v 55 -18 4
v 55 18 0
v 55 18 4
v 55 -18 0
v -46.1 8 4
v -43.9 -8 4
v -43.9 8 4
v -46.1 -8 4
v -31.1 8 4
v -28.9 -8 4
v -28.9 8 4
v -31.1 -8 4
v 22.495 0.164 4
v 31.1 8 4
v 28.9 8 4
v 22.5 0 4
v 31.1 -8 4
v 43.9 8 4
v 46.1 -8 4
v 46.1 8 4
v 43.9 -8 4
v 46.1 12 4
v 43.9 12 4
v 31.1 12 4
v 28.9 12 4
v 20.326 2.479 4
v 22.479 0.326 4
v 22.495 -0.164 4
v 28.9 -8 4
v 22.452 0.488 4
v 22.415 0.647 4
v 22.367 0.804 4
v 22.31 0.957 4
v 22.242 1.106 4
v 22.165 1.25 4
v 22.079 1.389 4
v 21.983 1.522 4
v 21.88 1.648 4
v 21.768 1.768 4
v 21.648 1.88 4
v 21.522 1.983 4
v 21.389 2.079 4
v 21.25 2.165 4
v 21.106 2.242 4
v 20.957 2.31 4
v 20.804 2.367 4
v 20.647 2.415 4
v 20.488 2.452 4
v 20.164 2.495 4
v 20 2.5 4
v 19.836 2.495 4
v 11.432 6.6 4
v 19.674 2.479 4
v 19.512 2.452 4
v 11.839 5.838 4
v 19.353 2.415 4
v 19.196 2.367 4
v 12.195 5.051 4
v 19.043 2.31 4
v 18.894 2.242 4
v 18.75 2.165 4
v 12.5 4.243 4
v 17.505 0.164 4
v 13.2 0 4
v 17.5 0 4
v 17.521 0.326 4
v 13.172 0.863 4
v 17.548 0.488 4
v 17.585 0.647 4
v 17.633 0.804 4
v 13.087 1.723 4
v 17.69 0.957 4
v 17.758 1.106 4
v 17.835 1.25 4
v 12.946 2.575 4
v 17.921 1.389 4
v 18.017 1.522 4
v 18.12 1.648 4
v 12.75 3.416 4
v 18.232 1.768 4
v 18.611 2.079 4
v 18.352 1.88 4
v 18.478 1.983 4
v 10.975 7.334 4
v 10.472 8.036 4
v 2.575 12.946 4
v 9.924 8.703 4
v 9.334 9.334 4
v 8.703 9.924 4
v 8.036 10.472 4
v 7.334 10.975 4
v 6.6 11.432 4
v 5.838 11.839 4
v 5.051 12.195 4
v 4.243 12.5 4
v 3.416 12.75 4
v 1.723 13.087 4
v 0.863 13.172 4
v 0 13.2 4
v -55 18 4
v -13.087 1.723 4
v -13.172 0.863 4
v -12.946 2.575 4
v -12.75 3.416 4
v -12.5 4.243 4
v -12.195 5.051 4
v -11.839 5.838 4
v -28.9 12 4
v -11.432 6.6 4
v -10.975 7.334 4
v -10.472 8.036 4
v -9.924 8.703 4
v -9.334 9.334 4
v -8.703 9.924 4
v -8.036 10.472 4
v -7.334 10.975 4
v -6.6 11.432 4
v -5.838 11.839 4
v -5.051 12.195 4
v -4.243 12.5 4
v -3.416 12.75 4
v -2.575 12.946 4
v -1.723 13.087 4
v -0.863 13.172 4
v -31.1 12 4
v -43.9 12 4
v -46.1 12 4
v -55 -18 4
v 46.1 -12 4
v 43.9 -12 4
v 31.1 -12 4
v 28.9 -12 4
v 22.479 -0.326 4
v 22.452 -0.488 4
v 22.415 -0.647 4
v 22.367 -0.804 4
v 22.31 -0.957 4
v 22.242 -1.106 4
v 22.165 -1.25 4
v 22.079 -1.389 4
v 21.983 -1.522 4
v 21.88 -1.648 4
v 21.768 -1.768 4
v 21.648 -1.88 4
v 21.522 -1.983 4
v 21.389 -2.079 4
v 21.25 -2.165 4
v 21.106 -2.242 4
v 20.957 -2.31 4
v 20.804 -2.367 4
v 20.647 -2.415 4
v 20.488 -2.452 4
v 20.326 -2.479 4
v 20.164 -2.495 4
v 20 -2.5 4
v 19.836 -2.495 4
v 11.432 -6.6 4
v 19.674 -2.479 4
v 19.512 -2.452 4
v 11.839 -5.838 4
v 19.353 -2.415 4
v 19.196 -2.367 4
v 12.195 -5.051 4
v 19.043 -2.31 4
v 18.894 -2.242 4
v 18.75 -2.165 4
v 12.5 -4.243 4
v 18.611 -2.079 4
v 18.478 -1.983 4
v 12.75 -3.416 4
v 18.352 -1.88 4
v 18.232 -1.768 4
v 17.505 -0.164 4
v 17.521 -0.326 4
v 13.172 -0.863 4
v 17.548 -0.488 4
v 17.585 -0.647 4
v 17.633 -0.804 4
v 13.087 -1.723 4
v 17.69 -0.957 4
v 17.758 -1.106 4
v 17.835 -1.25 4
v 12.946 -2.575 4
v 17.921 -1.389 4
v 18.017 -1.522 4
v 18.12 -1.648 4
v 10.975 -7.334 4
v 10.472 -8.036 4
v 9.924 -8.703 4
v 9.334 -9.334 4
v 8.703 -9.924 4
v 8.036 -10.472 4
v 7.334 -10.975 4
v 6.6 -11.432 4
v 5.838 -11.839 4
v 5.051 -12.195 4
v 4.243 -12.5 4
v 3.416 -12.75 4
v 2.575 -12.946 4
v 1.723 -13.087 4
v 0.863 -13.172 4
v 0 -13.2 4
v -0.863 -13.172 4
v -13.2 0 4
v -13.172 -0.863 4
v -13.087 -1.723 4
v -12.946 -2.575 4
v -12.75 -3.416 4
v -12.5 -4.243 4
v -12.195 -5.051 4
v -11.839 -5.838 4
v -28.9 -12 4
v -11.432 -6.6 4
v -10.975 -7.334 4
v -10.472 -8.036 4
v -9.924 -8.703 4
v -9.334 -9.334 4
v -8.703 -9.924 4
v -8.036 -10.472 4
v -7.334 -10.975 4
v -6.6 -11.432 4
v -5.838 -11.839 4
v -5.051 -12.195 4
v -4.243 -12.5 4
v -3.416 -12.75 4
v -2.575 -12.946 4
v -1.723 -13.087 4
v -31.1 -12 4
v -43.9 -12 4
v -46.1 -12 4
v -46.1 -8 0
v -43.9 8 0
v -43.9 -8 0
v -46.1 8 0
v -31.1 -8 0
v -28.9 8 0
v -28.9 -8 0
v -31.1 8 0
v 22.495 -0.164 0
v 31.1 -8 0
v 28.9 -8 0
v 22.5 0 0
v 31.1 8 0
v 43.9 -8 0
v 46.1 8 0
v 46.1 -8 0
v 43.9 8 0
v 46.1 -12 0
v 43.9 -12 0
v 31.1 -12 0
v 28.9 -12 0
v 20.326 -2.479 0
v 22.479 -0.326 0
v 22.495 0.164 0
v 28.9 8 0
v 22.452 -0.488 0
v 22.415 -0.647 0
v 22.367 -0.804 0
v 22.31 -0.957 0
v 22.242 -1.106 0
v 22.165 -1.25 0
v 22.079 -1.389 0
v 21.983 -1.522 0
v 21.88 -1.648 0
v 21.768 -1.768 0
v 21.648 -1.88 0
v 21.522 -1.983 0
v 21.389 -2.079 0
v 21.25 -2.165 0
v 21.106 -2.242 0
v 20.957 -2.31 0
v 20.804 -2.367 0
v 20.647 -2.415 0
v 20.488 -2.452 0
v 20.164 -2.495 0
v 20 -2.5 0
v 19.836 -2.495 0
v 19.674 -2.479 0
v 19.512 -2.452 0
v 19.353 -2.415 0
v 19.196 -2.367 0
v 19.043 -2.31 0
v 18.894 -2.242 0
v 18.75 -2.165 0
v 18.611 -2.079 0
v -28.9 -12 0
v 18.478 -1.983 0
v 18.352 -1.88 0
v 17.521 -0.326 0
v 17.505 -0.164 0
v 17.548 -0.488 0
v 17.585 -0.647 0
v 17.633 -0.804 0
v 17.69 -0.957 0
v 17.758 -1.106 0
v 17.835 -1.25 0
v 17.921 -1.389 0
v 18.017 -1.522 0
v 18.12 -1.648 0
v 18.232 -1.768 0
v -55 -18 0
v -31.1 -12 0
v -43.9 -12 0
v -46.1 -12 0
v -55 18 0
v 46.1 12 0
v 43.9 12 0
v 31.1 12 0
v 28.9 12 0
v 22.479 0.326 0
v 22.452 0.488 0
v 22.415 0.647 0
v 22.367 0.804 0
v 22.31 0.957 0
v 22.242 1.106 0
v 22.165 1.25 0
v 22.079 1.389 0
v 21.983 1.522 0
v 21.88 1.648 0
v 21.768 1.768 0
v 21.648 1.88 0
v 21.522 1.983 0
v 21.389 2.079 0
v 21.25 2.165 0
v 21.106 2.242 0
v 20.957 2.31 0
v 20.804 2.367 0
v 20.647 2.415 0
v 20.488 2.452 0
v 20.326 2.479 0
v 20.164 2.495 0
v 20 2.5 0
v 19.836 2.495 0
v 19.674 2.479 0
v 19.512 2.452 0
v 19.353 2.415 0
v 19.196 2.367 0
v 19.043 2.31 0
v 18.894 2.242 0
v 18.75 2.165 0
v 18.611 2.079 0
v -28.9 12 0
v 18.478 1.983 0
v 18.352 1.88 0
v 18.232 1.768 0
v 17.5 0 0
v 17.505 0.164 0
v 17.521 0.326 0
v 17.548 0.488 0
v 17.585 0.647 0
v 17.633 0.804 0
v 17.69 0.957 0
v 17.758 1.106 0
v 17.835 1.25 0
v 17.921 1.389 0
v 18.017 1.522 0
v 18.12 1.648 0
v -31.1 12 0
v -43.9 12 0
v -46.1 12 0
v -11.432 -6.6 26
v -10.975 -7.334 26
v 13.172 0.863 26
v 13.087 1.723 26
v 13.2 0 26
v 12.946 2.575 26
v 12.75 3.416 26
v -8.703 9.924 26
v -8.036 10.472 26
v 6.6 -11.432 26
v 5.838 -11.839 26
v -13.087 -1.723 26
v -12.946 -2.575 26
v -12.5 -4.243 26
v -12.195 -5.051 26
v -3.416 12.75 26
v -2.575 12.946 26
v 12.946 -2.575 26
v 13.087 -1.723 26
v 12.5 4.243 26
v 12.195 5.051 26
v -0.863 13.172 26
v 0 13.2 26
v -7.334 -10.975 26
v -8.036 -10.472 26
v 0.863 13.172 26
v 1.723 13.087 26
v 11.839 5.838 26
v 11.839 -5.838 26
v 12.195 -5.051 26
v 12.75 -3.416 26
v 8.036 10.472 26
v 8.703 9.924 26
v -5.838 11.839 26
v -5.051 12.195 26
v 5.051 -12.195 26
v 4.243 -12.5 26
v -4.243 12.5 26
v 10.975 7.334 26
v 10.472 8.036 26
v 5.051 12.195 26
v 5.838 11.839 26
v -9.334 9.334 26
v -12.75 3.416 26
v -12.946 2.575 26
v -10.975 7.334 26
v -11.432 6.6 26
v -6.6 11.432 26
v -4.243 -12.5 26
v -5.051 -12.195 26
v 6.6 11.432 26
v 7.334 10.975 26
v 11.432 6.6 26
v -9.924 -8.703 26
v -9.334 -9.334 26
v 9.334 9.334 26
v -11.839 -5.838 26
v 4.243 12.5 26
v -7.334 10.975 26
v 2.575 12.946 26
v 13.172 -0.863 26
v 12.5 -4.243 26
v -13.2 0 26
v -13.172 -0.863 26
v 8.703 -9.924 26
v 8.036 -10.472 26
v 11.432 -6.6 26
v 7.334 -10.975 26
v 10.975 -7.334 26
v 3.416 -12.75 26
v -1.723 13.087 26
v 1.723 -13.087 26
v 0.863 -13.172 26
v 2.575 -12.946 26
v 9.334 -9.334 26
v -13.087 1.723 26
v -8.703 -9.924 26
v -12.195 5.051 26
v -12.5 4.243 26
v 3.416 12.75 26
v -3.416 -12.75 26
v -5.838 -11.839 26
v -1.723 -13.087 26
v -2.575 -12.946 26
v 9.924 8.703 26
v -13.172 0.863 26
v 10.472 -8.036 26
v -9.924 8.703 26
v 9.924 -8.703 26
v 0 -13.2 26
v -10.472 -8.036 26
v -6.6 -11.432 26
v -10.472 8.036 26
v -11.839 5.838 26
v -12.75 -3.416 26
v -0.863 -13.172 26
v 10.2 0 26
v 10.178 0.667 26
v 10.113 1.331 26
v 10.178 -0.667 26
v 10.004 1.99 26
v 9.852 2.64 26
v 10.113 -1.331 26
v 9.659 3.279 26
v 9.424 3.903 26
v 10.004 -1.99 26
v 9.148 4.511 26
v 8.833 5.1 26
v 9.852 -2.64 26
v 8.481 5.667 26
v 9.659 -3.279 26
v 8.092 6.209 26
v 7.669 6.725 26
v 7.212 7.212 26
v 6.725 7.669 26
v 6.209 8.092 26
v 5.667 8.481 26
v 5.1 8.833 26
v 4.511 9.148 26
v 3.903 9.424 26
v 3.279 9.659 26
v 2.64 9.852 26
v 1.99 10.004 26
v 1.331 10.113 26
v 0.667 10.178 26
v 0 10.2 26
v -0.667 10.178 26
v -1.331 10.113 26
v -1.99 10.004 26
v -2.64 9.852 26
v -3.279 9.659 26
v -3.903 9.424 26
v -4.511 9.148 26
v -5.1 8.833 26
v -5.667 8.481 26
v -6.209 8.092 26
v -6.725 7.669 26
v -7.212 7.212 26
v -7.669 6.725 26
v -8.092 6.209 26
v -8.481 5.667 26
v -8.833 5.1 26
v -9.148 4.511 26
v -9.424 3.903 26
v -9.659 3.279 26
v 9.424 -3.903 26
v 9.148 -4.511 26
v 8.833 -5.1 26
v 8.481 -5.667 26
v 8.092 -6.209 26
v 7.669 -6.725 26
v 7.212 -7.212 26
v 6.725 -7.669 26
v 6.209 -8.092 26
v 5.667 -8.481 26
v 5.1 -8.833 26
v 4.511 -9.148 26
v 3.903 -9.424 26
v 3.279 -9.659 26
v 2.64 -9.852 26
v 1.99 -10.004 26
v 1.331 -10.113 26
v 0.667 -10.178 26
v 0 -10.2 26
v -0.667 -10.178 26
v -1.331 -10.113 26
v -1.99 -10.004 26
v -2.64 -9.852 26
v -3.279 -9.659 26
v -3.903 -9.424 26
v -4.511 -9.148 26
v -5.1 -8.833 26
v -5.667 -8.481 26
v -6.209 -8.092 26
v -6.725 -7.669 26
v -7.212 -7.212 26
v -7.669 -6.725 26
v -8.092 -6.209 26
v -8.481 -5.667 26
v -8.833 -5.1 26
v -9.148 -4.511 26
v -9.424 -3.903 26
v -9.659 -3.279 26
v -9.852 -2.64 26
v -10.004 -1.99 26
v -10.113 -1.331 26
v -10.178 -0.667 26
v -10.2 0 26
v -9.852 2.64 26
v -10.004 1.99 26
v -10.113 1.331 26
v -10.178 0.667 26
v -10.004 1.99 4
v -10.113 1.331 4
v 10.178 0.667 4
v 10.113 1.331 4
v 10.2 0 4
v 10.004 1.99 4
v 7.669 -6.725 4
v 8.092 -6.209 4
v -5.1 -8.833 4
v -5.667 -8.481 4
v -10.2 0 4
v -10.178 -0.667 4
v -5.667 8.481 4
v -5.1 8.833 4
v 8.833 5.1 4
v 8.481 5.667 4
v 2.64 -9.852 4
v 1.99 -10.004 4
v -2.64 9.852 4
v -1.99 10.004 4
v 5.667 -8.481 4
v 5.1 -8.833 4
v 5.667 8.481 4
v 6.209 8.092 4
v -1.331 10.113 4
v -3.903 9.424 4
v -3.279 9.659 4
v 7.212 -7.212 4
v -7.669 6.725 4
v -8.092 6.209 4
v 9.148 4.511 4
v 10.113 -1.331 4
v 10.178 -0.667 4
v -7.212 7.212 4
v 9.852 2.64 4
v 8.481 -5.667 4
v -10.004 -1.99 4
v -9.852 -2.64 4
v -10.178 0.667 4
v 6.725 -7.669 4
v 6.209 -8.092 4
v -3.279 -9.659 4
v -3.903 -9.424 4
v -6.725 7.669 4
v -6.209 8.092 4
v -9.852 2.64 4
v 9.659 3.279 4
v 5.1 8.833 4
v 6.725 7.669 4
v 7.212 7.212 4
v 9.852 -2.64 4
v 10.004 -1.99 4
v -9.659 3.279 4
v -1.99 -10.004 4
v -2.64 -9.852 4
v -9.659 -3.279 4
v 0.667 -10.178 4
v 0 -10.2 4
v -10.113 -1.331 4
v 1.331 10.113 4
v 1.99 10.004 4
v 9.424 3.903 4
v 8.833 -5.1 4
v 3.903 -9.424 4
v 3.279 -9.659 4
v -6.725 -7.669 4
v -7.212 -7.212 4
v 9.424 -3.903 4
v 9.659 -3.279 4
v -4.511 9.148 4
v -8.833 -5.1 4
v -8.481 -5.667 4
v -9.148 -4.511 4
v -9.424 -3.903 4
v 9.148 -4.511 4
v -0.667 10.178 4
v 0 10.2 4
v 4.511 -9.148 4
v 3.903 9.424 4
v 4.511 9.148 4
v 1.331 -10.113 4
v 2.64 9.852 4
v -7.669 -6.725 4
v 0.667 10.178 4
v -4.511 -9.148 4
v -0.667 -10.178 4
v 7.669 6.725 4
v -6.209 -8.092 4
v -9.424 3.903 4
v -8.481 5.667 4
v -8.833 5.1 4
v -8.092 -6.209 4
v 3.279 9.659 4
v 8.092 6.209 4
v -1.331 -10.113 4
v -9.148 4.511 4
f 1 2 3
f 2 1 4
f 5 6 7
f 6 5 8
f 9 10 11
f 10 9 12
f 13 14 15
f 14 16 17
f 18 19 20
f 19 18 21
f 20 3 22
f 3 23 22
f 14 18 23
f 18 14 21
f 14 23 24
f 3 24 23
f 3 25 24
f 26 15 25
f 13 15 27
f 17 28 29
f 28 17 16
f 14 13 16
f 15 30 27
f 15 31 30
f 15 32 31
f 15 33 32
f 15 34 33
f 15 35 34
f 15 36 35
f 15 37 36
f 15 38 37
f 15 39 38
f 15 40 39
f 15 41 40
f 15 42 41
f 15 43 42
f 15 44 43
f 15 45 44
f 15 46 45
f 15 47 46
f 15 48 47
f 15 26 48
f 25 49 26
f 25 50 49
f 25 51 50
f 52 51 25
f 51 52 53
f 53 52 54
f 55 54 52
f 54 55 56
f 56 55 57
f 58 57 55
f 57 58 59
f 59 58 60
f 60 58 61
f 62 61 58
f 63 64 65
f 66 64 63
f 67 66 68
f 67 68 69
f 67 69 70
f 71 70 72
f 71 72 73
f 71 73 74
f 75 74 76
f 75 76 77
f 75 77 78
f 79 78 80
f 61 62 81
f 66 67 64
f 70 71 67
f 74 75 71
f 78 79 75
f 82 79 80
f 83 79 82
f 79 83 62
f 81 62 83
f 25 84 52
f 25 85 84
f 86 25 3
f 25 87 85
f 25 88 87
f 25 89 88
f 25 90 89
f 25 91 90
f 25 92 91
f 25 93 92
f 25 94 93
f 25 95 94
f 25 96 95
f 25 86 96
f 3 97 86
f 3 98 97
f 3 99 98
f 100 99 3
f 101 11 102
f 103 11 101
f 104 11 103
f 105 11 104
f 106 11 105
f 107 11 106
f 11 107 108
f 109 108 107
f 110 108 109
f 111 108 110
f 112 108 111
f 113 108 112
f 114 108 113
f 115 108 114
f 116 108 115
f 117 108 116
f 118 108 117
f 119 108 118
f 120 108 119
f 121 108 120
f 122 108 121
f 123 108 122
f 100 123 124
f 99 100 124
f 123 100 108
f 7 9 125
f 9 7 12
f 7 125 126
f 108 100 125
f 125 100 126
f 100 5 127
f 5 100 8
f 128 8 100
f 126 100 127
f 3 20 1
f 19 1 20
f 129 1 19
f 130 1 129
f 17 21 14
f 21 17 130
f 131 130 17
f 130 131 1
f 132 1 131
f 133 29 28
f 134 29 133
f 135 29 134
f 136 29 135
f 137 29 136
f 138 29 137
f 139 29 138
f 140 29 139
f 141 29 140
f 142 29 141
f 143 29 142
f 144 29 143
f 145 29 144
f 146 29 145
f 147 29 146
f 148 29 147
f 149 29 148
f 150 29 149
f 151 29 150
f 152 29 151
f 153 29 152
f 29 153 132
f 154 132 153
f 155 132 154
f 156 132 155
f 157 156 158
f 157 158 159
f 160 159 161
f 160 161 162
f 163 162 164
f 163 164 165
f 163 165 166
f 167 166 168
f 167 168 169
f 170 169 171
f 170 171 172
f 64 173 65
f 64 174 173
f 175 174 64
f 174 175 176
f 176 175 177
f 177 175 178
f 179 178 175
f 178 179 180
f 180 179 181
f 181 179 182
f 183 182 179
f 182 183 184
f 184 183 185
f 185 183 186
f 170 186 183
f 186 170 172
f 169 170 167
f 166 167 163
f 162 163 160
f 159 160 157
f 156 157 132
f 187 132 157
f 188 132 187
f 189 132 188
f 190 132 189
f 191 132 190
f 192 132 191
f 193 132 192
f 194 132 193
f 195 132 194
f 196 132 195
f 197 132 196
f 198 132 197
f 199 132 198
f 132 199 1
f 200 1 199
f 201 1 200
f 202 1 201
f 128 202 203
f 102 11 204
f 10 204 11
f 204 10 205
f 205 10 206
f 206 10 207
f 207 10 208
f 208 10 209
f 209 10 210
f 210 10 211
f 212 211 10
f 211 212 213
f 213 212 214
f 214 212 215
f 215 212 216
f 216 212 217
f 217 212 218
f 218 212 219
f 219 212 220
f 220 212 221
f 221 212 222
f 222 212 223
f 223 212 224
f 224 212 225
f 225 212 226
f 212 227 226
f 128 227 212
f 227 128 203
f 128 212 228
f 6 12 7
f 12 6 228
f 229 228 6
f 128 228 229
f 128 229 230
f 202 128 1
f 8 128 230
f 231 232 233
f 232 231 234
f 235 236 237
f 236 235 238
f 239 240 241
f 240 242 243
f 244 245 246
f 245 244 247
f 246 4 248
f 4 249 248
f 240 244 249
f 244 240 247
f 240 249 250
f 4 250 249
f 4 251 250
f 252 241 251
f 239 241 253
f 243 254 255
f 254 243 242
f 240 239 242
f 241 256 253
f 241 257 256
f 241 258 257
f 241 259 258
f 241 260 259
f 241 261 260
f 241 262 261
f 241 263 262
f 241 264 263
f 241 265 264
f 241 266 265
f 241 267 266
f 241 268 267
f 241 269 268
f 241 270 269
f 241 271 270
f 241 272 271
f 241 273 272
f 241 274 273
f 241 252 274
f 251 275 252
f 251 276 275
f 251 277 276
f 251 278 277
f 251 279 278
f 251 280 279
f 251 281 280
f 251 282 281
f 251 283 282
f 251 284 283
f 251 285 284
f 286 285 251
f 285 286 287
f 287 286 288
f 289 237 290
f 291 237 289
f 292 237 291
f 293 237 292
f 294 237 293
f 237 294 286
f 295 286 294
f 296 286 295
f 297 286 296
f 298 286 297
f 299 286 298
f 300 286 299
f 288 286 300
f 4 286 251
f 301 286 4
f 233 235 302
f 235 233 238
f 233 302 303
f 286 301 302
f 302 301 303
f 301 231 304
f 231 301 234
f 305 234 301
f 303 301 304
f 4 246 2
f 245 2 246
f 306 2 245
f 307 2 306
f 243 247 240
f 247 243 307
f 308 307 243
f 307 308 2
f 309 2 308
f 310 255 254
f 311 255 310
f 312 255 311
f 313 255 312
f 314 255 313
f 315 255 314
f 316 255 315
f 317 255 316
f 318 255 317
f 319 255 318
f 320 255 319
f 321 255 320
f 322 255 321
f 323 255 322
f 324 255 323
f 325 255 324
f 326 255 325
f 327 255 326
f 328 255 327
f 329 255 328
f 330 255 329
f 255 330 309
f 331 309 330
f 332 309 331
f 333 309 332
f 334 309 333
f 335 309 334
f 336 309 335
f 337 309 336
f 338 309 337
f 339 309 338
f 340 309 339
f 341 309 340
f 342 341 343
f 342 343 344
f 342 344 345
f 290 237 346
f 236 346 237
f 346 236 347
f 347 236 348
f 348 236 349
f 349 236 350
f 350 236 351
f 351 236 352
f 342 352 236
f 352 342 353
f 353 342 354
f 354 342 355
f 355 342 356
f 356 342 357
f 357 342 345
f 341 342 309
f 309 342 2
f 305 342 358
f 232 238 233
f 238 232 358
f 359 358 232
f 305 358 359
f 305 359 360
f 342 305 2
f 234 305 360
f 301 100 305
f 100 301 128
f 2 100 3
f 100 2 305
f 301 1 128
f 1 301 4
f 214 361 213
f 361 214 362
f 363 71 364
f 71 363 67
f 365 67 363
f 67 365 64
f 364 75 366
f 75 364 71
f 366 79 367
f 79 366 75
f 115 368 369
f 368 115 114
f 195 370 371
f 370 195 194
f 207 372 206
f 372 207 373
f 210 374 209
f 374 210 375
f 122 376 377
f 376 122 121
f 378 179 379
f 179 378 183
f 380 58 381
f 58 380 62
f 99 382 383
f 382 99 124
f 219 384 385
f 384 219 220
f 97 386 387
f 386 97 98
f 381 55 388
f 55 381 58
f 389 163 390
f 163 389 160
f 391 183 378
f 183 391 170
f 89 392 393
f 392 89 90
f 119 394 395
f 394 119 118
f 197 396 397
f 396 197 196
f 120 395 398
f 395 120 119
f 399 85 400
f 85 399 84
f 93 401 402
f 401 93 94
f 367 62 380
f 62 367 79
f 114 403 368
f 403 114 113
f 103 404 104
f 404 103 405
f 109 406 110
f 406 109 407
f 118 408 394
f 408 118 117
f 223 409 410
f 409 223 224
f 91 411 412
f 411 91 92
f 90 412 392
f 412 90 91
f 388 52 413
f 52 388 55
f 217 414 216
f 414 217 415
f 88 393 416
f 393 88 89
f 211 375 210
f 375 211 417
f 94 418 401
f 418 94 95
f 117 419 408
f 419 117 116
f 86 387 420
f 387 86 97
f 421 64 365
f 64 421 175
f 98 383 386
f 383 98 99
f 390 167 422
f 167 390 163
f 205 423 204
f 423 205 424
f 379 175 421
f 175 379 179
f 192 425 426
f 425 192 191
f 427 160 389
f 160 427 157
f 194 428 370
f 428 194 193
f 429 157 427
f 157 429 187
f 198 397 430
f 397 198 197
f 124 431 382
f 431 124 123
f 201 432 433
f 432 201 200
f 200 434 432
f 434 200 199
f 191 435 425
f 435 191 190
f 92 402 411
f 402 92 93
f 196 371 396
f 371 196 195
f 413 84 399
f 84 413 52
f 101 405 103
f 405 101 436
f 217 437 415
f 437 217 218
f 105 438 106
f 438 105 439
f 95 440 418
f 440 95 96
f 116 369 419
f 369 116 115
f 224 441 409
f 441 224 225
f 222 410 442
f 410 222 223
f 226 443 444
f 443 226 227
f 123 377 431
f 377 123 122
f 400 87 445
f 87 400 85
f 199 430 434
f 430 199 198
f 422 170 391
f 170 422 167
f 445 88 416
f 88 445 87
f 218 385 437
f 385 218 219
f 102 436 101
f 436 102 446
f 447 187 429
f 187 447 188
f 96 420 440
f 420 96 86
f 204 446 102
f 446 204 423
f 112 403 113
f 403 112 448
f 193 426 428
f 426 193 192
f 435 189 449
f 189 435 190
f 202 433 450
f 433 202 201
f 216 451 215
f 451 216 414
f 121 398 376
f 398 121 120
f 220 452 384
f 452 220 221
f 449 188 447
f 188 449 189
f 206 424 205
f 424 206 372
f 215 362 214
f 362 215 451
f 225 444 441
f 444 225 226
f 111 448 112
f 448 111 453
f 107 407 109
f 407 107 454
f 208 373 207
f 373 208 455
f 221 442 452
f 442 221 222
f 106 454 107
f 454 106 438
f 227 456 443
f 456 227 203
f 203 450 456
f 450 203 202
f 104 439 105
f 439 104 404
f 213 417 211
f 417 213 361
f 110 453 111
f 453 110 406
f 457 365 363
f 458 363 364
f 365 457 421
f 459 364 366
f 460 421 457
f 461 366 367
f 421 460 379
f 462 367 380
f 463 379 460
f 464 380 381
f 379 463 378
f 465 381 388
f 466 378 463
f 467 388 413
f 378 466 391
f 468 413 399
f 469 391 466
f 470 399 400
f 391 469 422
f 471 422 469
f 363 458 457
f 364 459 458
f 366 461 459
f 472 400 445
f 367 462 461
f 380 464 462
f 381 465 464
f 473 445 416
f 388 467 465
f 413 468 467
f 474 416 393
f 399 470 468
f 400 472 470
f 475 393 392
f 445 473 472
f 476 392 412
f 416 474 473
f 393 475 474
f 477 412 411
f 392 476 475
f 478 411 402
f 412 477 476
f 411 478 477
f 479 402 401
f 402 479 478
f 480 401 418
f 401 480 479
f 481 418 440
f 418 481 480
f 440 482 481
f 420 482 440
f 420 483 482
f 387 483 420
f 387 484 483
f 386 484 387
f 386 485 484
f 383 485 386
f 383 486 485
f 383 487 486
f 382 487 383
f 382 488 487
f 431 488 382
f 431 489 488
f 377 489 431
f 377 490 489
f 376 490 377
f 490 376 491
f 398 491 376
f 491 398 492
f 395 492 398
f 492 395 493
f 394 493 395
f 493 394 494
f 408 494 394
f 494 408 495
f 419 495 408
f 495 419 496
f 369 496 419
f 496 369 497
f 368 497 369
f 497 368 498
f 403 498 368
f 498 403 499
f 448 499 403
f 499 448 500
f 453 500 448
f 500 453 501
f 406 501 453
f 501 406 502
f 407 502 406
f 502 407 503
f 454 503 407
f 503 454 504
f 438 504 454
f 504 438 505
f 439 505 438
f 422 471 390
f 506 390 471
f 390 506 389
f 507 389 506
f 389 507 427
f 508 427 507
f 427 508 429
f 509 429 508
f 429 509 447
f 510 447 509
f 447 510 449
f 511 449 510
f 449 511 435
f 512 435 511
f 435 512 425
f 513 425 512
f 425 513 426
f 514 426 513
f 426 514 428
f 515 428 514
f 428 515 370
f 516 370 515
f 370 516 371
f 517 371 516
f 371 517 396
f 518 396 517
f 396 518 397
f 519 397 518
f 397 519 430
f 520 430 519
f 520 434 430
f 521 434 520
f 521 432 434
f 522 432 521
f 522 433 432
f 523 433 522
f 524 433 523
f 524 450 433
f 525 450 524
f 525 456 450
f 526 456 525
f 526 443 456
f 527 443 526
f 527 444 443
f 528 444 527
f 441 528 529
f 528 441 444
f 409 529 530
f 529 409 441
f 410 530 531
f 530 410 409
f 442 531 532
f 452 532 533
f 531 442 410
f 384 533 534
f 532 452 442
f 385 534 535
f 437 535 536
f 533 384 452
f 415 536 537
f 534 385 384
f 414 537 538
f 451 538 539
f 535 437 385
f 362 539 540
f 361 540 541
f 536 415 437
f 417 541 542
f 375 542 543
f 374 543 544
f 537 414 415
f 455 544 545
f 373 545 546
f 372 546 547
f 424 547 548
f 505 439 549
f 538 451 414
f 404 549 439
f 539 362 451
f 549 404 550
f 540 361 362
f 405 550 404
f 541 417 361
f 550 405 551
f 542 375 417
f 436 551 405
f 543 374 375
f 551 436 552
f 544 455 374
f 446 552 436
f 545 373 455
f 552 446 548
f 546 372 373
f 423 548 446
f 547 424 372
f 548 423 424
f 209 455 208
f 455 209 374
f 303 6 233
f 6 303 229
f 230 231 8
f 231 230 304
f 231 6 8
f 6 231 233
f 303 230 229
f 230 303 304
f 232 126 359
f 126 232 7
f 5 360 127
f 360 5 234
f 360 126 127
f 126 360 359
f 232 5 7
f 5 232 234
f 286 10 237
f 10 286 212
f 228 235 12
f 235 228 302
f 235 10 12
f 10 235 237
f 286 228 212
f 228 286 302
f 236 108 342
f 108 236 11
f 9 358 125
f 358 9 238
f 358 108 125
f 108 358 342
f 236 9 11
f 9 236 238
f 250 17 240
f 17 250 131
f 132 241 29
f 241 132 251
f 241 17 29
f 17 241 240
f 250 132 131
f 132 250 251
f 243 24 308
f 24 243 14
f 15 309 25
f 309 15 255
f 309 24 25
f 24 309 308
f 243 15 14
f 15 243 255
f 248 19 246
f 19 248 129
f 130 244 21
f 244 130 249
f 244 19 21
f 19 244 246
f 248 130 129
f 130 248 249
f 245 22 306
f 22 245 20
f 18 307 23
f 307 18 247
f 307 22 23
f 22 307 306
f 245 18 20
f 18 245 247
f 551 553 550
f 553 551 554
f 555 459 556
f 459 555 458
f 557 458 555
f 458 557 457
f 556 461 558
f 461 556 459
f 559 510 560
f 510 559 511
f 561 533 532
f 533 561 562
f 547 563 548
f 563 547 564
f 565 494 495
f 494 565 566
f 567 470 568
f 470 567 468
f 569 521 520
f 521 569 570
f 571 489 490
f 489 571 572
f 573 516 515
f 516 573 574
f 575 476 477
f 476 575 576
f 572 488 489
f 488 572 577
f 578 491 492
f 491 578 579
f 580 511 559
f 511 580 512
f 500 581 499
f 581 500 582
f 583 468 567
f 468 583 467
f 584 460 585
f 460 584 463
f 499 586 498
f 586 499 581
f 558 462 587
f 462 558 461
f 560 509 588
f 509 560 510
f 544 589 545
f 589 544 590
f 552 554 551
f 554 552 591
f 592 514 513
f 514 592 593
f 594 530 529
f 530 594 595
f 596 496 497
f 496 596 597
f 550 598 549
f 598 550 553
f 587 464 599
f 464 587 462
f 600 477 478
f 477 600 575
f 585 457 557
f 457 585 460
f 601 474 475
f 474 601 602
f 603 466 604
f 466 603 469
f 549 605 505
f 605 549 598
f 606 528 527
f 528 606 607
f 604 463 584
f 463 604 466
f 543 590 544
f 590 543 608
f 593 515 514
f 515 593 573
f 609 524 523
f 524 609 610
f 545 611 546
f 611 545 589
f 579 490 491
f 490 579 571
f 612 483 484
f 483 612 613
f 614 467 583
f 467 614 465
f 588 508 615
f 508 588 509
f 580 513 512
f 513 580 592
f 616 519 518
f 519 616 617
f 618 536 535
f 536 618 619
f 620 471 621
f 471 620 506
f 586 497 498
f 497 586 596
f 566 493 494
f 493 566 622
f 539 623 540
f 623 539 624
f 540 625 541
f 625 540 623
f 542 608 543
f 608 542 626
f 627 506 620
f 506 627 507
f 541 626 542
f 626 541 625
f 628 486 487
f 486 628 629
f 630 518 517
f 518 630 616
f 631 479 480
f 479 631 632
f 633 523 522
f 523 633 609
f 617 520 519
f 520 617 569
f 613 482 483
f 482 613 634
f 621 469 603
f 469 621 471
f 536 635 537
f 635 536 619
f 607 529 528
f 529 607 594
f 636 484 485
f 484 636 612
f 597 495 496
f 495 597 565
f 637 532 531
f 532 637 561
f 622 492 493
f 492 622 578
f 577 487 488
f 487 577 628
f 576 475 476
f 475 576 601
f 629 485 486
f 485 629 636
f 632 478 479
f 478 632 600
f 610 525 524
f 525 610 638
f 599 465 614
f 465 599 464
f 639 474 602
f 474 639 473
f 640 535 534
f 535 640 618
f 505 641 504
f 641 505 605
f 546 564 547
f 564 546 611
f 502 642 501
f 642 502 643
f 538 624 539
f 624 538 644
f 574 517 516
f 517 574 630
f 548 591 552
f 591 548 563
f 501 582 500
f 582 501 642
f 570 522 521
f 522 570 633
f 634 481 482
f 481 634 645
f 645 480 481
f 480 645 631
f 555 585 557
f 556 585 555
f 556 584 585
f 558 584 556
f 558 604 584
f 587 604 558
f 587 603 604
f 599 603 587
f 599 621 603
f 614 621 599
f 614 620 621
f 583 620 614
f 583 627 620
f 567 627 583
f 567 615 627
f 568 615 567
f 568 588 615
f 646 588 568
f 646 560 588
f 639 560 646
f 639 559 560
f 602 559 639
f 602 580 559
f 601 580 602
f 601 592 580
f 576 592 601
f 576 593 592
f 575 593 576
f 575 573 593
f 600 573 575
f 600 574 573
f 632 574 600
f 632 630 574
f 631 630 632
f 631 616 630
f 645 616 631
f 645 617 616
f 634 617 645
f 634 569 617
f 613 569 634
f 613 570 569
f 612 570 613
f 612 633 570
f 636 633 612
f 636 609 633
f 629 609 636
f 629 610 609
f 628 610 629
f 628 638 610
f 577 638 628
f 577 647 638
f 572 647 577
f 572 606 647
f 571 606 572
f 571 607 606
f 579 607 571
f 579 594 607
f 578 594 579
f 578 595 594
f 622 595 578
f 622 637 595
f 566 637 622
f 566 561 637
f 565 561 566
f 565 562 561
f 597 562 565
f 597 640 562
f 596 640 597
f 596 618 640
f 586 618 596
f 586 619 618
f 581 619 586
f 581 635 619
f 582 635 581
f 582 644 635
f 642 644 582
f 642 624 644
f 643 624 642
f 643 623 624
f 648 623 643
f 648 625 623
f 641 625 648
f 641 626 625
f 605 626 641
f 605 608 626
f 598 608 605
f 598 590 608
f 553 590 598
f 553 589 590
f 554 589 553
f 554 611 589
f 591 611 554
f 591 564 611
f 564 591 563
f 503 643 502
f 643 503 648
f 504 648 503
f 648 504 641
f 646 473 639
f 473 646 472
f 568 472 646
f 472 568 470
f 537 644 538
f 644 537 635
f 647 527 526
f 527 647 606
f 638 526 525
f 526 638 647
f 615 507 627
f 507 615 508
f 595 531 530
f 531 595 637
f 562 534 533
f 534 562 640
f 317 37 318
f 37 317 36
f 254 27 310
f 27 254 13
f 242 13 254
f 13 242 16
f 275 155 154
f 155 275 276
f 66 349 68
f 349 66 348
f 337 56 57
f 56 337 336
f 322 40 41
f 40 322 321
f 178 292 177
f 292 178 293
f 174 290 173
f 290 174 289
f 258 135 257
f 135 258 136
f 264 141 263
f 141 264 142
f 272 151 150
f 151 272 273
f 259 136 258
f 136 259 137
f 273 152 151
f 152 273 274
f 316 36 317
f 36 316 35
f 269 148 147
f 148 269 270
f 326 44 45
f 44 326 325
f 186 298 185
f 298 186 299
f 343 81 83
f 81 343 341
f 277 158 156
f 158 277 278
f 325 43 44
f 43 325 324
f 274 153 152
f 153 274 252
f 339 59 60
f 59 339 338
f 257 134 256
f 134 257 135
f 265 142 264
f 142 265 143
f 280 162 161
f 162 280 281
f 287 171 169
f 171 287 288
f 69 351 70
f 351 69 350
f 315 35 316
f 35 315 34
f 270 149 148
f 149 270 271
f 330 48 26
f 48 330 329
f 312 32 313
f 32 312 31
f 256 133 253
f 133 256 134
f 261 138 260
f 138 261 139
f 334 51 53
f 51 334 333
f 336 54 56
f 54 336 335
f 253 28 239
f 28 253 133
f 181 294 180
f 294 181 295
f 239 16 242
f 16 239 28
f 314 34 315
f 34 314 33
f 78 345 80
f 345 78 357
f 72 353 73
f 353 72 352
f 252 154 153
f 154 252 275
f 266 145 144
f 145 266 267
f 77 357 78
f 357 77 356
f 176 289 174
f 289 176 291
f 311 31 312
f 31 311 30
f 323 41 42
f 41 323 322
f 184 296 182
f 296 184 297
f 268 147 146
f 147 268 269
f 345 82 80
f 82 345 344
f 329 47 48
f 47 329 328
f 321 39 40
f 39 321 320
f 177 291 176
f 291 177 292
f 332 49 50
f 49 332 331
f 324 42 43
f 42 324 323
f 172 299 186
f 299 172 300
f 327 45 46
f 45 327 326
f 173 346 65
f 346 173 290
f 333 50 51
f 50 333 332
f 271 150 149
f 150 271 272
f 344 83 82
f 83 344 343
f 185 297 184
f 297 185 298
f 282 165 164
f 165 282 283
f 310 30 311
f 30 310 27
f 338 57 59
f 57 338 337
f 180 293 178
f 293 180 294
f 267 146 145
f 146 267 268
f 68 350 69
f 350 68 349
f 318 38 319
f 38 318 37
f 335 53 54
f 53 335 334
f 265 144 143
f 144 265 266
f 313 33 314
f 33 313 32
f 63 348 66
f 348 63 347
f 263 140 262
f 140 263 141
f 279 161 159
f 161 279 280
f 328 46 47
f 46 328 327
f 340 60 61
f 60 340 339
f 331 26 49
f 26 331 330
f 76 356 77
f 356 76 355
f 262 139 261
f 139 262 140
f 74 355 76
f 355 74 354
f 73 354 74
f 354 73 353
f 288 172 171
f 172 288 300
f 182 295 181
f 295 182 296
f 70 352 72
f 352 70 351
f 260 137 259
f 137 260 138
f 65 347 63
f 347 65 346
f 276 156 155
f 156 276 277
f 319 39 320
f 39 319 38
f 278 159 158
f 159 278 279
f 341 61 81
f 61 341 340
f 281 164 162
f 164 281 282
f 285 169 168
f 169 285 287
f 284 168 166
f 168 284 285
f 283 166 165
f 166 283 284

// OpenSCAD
// =============================================================================
// Messkopf für den Machbarkeitstest (Phase 3)
// -----------------------------------------------------------------------------
// Hält die H-Spule waagerecht unter einer Platte (Kabelbinder) und nimmt oben
// ein Elektro-Isolierrohr M20 als Stiel auf. Die V-Spule (Flansch 15,5 mm)
// steckt senkrecht im unteren Ende des Rohrs; ihr Ferritstab steht auf der
// Platte. Die Drähte der H-Spule laufen durch das Loch neben der Hülse nach
// oben und werden außen am Rohr festgeklebt.
// Druck: PETG, Platte flach auf dem Druckbett, kein Stützmaterial nötig.
// =============================================================================

platte_l = 110;
platte_b = 36;
platte_h = 4;
rohr_d   = 20.4;   // Außendurchmesser M20-Rohr + Spiel
huelse_h = 22;
huelse_wand = 3;
loch_d   = 5;      // Durchführung für die Drähte der H-Spule
loch_x   = 20;     // neben der Hülse
binder_b = 4;      // Kabelbinder-Schlitz
binder_l = 2.2;

$fn = 96;

difference() {
  union() {
    translate([-platte_l / 2, -platte_b / 2, 0]) cube([platte_l, platte_b, platte_h]);
    cylinder(h = platte_h + huelse_h, d = rohr_d + 2 * huelse_wand);
  }
  // Aufnahme für das Rohr
  translate([0, 0, platte_h]) cylinder(h = huelse_h + 1, d = rohr_d);
  // Drahtdurchführung neben der Hülse
  translate([loch_x, 0, -1]) cylinder(h = platte_h + 2, d = loch_d);
  // Kabelbinder-Schlitze für die H-Spule (je zwei links und rechts)
  for (x = [-45, -30, 30, 45])
    for (y = [-1, 1])
      translate([x - binder_l / 2, y * 10 - binder_b / 2, -1]) cube([binder_l, binder_b, platte_h + 2]);
}
